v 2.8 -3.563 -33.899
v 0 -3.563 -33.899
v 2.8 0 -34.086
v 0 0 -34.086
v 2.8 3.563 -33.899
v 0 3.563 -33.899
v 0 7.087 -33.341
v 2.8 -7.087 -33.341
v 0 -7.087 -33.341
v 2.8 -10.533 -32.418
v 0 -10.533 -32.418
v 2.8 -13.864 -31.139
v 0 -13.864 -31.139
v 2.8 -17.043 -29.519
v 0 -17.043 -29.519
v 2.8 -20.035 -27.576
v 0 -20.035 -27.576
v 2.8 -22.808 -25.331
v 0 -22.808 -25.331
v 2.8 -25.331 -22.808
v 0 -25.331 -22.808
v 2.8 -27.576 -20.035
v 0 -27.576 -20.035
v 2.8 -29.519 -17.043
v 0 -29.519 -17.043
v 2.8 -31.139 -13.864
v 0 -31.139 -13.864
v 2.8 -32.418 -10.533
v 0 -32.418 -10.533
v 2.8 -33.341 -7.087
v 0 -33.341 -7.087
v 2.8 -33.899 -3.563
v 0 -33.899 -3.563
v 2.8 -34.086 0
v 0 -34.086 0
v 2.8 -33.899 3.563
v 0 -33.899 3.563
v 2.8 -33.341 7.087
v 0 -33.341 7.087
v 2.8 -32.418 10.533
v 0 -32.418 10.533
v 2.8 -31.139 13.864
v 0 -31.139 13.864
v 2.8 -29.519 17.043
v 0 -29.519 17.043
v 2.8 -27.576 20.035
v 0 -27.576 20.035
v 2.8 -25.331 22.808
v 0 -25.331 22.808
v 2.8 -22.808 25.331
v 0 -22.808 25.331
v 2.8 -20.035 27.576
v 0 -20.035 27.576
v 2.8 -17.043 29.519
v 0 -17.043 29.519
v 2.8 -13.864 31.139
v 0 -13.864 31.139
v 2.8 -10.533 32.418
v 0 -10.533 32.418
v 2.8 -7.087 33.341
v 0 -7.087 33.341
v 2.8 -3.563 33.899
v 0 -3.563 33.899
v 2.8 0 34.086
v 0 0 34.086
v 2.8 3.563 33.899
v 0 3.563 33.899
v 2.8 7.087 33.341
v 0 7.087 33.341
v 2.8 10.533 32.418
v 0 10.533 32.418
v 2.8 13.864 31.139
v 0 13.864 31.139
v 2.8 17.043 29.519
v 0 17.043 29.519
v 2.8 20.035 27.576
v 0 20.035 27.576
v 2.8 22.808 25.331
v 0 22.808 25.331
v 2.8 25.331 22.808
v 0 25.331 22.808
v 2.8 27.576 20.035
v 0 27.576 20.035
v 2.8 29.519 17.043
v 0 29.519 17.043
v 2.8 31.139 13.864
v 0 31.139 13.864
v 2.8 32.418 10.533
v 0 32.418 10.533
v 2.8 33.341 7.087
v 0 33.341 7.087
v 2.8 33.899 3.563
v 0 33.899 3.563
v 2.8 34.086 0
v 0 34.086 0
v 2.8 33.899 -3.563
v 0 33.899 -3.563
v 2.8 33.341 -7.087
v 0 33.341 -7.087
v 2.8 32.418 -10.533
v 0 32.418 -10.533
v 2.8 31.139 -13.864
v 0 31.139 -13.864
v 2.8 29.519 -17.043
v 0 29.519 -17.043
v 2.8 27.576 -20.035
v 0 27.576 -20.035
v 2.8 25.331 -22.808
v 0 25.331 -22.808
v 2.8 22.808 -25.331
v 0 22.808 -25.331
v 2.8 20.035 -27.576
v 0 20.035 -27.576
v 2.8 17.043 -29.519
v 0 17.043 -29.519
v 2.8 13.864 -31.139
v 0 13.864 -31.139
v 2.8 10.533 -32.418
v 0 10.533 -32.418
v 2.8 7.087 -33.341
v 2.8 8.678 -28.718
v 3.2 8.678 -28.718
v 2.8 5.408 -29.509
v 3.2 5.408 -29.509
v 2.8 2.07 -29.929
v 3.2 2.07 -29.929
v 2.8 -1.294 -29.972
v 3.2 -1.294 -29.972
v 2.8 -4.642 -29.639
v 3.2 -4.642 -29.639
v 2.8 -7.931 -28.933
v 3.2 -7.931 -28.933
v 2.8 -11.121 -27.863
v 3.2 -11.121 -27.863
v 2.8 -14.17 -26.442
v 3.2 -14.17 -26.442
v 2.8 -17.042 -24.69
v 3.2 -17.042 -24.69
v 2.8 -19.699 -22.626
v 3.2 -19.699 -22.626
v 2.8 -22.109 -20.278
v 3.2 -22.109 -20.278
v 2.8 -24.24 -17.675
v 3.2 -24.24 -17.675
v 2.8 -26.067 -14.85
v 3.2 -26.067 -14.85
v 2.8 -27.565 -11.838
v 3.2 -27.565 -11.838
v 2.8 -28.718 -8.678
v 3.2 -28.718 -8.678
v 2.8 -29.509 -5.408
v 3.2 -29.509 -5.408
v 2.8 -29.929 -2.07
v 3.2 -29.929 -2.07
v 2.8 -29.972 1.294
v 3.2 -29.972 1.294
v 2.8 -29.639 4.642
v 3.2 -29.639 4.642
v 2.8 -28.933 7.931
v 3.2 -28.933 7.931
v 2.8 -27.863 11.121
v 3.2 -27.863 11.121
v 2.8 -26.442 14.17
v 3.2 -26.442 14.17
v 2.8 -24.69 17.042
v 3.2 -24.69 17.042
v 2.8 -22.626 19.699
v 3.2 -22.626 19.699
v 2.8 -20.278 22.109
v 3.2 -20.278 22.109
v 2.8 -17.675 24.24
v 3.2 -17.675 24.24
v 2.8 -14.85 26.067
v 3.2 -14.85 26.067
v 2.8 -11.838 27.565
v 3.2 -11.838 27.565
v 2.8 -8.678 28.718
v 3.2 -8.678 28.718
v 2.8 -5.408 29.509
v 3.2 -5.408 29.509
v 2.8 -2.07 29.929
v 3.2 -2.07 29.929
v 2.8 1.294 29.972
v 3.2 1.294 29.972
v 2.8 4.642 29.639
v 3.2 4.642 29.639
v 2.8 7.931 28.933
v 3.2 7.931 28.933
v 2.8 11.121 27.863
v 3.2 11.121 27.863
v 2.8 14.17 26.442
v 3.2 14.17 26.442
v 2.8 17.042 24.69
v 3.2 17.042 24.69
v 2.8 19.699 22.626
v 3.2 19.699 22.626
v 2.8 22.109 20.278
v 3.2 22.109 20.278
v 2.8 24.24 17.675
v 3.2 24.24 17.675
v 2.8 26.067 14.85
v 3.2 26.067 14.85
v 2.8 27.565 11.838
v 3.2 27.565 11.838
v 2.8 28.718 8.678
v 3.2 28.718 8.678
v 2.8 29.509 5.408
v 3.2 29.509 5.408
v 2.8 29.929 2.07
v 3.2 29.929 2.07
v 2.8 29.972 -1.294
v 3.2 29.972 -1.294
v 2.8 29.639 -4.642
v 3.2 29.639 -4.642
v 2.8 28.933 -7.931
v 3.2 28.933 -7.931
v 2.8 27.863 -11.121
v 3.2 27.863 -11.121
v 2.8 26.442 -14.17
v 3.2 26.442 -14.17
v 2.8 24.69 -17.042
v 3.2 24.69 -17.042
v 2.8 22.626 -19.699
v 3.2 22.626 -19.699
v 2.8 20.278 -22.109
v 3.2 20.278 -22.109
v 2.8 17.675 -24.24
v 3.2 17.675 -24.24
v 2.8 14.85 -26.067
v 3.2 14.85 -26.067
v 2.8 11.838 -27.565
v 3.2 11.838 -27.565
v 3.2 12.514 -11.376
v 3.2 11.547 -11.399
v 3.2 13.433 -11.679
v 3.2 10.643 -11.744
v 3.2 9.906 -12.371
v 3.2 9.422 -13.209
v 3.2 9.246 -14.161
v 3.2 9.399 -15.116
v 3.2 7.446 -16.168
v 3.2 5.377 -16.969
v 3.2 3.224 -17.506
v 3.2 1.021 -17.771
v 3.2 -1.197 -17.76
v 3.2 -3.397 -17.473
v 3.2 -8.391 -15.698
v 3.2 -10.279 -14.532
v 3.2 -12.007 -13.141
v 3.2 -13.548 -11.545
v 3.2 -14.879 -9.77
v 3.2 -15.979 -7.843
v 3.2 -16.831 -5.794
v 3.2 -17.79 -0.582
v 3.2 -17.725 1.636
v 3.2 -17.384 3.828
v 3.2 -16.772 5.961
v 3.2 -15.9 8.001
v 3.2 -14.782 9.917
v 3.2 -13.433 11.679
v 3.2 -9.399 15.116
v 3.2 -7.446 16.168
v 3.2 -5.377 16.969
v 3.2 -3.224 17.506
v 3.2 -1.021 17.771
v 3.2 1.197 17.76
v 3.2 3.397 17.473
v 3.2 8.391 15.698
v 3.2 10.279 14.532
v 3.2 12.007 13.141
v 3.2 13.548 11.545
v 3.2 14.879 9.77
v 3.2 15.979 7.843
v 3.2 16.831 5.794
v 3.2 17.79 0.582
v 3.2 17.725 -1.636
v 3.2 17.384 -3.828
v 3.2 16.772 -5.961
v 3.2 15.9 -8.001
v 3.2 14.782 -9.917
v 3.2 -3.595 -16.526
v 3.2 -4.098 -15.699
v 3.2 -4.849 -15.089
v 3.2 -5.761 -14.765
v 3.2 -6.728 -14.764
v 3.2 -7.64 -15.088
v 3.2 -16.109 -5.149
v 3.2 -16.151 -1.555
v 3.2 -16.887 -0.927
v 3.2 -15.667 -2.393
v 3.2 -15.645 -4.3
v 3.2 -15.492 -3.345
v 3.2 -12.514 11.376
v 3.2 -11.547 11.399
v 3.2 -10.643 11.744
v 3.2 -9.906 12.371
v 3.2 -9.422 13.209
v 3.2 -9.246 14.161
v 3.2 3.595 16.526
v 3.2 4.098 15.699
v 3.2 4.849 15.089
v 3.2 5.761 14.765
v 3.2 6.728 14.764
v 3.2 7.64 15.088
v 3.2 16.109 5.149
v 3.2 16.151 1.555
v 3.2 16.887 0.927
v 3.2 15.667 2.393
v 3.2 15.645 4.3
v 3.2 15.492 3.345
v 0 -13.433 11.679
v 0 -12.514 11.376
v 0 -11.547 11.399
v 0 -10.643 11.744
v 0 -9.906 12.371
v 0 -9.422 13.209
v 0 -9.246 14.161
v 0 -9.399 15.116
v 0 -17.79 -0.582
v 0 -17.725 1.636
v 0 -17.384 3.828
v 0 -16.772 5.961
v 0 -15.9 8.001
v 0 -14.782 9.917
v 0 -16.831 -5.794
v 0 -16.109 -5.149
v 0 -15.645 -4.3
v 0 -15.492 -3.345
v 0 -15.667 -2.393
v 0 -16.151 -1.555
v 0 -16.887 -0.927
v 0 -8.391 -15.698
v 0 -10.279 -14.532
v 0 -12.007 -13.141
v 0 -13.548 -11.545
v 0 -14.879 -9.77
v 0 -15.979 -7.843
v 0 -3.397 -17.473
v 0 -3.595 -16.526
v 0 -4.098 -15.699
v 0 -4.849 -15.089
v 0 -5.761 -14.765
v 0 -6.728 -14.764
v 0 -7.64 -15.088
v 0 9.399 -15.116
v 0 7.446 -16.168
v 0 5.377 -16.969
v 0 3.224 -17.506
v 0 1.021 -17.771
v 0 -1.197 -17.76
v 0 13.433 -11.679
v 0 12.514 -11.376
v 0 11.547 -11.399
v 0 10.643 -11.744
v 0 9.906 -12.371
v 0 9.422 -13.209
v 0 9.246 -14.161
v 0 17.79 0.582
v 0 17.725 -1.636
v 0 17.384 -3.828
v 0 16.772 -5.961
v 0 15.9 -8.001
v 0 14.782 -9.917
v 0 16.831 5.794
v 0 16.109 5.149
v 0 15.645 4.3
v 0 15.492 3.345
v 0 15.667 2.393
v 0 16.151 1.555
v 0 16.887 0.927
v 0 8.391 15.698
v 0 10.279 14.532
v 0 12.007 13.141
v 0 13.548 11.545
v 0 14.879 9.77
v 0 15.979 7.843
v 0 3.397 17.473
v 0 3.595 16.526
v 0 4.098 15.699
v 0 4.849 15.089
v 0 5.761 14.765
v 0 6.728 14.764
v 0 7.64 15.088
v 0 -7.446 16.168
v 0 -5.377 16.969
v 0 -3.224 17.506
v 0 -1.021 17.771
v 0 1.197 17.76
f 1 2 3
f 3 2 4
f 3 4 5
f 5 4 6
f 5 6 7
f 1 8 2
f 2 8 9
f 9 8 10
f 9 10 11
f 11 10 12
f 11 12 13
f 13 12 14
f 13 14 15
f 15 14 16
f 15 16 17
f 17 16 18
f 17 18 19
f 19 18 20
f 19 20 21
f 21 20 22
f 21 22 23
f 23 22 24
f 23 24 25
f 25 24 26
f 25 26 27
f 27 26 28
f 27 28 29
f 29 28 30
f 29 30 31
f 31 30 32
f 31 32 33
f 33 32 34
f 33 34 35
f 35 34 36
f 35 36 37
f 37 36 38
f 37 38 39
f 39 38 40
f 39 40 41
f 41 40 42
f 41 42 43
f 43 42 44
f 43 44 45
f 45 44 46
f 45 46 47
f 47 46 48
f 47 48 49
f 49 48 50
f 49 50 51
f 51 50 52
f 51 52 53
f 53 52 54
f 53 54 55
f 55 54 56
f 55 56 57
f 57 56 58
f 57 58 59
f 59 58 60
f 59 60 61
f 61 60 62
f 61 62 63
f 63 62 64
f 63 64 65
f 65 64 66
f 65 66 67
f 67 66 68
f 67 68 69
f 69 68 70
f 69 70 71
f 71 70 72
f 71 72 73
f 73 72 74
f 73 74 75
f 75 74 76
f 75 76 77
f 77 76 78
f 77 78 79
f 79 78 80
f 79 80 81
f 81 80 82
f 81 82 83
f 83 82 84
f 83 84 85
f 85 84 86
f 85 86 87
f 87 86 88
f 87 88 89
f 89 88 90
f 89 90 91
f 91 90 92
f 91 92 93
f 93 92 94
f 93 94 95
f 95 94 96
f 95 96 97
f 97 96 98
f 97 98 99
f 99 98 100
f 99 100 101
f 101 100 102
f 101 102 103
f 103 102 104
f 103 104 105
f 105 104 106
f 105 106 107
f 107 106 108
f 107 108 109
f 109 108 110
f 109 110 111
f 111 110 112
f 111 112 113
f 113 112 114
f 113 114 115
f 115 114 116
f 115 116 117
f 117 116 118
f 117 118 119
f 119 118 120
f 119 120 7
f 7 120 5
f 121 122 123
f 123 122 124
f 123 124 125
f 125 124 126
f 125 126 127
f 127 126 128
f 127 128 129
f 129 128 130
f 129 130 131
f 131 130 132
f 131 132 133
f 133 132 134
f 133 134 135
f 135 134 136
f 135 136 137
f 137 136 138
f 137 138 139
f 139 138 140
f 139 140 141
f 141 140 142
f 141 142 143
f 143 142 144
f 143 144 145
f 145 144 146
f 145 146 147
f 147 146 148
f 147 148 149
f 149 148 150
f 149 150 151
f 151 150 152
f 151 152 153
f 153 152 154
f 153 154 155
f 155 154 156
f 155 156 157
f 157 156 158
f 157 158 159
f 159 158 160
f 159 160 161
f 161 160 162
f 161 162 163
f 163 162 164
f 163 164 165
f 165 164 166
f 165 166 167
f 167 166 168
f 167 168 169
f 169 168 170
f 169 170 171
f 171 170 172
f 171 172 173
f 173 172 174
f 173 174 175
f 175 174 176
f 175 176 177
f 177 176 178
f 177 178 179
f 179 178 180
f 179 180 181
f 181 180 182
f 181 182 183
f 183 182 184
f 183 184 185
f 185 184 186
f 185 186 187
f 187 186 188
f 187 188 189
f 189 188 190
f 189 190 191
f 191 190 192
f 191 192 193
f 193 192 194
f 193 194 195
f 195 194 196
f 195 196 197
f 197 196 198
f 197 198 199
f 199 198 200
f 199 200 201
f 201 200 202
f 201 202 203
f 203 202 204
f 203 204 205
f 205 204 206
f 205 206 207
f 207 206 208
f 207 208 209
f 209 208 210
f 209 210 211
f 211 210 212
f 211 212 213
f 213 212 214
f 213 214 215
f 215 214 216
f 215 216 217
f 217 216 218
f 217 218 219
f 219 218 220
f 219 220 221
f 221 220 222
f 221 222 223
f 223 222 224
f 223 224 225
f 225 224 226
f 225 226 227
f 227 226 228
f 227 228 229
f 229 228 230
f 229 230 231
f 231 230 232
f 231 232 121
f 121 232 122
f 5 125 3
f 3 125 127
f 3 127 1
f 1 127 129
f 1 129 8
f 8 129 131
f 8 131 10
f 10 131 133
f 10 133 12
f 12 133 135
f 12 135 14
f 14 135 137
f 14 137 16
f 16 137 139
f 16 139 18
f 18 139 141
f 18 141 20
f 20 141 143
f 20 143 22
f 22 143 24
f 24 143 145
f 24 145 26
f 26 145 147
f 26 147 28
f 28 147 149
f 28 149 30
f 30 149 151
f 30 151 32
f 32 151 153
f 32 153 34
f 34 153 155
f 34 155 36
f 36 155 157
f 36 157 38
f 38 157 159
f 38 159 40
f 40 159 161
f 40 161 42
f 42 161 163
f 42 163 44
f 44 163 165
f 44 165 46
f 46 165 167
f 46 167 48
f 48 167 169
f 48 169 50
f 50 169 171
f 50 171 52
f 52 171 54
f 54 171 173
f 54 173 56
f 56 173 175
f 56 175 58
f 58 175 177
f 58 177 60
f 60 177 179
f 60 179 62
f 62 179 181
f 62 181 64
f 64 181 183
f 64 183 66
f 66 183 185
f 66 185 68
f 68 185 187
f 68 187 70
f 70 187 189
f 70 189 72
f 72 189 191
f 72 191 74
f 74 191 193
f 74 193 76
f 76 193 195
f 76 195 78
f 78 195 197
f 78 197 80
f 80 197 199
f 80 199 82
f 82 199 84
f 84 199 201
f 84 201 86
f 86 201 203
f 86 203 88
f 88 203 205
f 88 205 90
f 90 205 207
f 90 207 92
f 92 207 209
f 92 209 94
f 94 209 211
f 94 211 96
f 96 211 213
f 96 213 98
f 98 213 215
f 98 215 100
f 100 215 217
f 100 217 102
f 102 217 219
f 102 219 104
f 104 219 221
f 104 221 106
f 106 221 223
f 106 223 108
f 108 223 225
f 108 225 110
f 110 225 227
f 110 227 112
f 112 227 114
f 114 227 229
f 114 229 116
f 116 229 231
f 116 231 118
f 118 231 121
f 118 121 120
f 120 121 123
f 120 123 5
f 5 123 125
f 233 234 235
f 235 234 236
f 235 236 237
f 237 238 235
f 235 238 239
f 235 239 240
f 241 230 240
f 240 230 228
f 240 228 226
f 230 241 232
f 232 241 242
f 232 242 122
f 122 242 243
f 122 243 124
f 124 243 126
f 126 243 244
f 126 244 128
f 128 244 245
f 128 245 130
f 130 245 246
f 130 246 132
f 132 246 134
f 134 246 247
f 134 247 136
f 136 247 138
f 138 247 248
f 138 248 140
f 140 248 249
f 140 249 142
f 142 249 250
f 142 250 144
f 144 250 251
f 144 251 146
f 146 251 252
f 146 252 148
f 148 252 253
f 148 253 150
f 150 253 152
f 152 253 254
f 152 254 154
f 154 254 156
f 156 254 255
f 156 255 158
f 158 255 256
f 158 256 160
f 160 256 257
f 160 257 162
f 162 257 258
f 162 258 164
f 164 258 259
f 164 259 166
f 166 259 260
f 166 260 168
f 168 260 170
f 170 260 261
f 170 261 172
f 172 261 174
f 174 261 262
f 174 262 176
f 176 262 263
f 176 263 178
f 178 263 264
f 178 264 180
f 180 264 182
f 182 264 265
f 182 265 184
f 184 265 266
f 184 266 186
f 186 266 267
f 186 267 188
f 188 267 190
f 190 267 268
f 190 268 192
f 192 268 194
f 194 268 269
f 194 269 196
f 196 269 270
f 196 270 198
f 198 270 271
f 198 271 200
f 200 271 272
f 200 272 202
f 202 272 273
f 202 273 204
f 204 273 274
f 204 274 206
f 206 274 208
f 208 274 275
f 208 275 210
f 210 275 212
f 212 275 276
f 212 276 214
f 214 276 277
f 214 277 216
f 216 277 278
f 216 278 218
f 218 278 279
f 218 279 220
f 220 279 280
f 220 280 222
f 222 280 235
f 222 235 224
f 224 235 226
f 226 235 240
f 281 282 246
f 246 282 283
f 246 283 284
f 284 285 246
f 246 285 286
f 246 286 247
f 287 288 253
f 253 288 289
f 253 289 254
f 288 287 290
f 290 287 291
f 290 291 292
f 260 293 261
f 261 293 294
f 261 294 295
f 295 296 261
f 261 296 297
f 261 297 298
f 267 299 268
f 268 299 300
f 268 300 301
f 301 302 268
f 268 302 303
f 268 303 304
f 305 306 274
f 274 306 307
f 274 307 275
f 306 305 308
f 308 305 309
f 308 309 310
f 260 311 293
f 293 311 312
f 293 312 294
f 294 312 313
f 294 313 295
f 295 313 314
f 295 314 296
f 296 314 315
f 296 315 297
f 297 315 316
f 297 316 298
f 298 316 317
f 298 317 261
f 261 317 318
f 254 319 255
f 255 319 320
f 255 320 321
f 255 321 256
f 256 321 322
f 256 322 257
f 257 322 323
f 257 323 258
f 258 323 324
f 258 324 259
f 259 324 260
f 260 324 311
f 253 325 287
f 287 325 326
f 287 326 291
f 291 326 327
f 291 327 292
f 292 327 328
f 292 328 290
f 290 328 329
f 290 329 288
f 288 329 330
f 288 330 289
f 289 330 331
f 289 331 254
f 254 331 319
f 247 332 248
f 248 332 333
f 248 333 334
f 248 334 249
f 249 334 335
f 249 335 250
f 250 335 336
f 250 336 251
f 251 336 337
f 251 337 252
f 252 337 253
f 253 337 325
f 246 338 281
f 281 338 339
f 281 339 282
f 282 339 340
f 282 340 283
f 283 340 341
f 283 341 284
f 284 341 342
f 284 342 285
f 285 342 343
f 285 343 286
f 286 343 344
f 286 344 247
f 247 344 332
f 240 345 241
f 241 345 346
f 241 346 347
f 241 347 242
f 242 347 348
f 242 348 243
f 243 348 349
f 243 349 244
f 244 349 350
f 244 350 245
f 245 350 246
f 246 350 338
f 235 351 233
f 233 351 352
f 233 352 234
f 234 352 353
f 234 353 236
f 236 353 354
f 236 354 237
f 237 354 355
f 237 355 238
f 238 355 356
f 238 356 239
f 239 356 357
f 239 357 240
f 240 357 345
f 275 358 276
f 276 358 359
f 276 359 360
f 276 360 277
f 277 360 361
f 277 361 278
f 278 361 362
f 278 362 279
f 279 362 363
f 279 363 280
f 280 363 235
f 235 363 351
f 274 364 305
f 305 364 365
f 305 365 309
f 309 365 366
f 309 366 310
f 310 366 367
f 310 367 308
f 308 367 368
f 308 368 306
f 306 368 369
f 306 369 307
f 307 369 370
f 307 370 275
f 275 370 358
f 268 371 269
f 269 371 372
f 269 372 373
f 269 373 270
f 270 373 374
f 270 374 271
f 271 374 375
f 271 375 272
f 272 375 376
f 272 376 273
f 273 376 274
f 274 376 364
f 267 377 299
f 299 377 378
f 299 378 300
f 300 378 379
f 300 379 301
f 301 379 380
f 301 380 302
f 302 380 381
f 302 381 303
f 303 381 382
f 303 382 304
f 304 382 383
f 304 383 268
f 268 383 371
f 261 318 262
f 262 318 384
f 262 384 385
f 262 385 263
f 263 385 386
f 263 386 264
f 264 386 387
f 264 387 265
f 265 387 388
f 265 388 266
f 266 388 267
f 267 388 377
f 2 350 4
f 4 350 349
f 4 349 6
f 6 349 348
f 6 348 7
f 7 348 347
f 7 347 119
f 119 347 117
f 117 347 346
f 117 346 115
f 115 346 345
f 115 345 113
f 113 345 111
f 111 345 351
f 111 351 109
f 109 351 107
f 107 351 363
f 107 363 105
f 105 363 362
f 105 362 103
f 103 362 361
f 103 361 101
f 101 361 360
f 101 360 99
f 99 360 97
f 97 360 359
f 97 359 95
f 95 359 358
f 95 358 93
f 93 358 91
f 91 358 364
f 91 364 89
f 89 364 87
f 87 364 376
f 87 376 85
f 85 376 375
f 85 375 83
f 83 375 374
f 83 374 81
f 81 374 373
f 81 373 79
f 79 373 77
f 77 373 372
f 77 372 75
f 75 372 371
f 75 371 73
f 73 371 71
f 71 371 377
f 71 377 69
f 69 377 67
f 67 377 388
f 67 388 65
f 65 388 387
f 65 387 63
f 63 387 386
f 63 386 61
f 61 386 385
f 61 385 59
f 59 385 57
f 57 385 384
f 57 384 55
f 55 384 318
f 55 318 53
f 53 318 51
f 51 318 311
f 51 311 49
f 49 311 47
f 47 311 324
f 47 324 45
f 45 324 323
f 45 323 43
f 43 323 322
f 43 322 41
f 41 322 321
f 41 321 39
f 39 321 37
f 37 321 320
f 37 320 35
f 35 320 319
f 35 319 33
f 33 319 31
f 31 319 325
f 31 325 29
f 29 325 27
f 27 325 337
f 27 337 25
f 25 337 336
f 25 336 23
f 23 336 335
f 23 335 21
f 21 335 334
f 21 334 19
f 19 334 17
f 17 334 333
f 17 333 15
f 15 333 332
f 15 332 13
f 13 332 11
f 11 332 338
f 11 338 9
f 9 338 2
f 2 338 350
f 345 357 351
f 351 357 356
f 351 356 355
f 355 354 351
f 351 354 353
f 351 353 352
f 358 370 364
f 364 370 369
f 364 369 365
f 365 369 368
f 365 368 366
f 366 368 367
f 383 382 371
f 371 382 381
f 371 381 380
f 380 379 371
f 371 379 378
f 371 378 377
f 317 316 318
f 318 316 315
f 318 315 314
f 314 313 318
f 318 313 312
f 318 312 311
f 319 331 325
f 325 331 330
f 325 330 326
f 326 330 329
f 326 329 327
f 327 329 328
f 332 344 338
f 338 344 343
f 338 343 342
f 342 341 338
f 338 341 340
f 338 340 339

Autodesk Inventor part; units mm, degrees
ref_plane "YZ Plane" through (0, 0, 0) normal (1, 0, 0) x (0, 1, 0)
ref_plane "XZ Plane" through (0, 0, 0) normal (0, 1, 0) x (-1, 0, 0)
ref_plane "XY Plane" through (0, 0, 0) normal (0, 0, 1) x (1, 0, 0)
sketch "Sketch_1" plane through (0, 0, 0) normal (0, 0, 1) x (1, 0, 0)
  line L0 (7.2, 0) -> (0, 0)
  line L1 (0, 8.5) -> (3.2, 8.5)
  line L2 (3.2, 8.5) -> (3.2, 105.8394)
  arc A0 (3.2, 105.8394) -> (2.2899, 109) centre (-4.7294, 105.2675) ccw
  line L3 (2.2899, 109) -> (0.7899, 109)
  arc A1 (0.7899, 109) -> (0, 105.8394) centre (7.9441, 105.5329) ccw
  line L4 (0, 105.8394) -> (0, 8.5)
  dimension "d16" = 1.5
  dimension "d17" = 3.2
revolve "Revolution1" add sketch "Sketch_1" angle 360 about axis through (7.2, 0, 0) along (1, 0, 0)
sketch "Sketch_2" plane through (3.6, 0, 0) normal (1, 0, 0) x (0, 0, -1)
  circle A0 centre (0, 0) radius 145.3333
  arc A1 (-108.9989, 0.5) -> (-108.9989, -0.5) centre (0, 0) ccw
  line L0 (-108.9989, -0.5) -> (-103.5248, -2.6502)
  arc A2 (-103.0895, -9.8477) -> (-103.5248, -2.6502) centre (-104.9781, -6.35) ccw
  line L1 (-103.0895, -9.8477) -> (-108.2644, -12.642)
  arc A3 (-108.2644, -12.642) -> (-108.1439, -13.6347) centre (0, 0) ccw
  line L2 (-108.1439, -13.6347) -> (-102.4506, -15.1094)
  arc A4 (-101.1508, -22.2019) -> (-102.4506, -15.1094) centre (-103.4473, -18.9574) ccw
  line L3 (-101.1508, -22.2019) -> (-105.9512, -25.5997)
  arc A5 (-105.9512, -25.5997) -> (-105.7119, -26.5706) centre (0, 0) ccw
  line L4 (-105.7119, -26.5706) -> (-99.8824, -27.3483)
  arc A6 (-97.7372, -34.2324) -> (-99.8824, -27.3483) centre (-100.408, -31.2884) ccw
  line L5 (-97.7372, -34.2324) -> (-102.093, -38.184)
  arc A7 (-102.093, -38.184) -> (-101.7384, -39.119) centre (0, 0) ccw
  line L6 (-101.7384, -39.119) -> (-95.8576, -39.1884)
  arc A8 (-92.8983, -45.7638) -> (-95.8576, -39.1884) centre (-95.9045, -43.1631) ccw
  line L7 (-92.8983, -45.7638) -> (-96.7461, -50.2116)
  arc A9 (-96.7461, -50.2116) -> (-96.2813, -51.097) centre (0, 0) ccw
  line L8 (-96.2813, -51.097) -> (-90.4351, -50.457)
  arc A10 (-86.7048, -56.6277) -> (-90.4351, -50.457) centre (-90.0025, -54.4084) ccw
  line L9 (-86.7048, -56.6277) -> (-89.9883, -61.5069)
  arc A11 (-89.9883, -61.5069) -> (-89.4203, -62.3299) centre (0, 0) ccw
  line L10 (-89.4203, -62.3299) -> (-83.6938, -60.9899)
  arc A12 (-79.2469, -66.666) -> (-83.6938, -60.9899) centre (-82.7881, -64.8603) ccw
  line L11 (-79.2469, -66.666) -> (-81.9184, -71.9054)
  arc A13 (-81.9184, -71.9054) -> (-81.2553, -72.6539) centre (0, 0) ccw
  line L12 (-81.2553, -72.6539) -> (-75.732, -70.6334)
  arc A14 (-70.6334, -75.732) -> (-75.732, -70.6334) centre (-74.3664, -74.3664) ccw
  line L13 (-70.6334, -75.732) -> (-72.6539, -81.2553)
  arc A15 (-72.6539, -81.2553) -> (-71.9054, -81.9184) centre (0, 0) ccw
  line L14 (-71.9054, -81.9184) -> (-66.666, -79.2469)
  arc A16 (-60.9899, -83.6938) -> (-66.666, -79.2469) centre (-64.8603, -82.7881) ccw
  line L15 (-60.9899, -83.6938) -> (-62.3299, -89.4203)
  arc A17 (-62.3299, -89.4203) -> (-61.5069, -89.9883) centre (0, 0) ccw
  line L16 (-61.5069, -89.9883) -> (-56.6277, -86.7048)
  arc A18 (-50.457, -90.4351) -> (-56.6277, -86.7048) centre (-54.4084, -90.0025) ccw
  line L17 (-50.457, -90.4351) -> (-51.097, -96.2813)
  arc A19 (-51.097, -96.2813) -> (-50.2116, -96.7461) centre (0, 0) ccw
  line L18 (-50.2116, -96.7461) -> (-45.7638, -92.8983)
  arc A20 (-39.1884, -95.8576) -> (-45.7638, -92.8983) centre (-43.1631, -95.9045) ccw
  line L19 (-39.1884, -95.8576) -> (-39.119, -101.7384)
  arc A21 (-39.119, -101.7384) -> (-38.184, -102.093) centre (0, 0) ccw
  line L20 (-38.184, -102.093) -> (-34.2324, -97.7372)
  arc A22 (-27.3483, -99.8824) -> (-34.2324, -97.7372) centre (-31.2884, -100.408) ccw
  line L21 (-27.3483, -99.8824) -> (-26.5706, -105.7119)
  arc A23 (-26.5706, -105.7119) -> (-25.5997, -105.9512) centre (0, 0) ccw
  line L22 (-25.5997, -105.9512) -> (-22.2019, -101.1508)
  arc A24 (-15.1094, -102.4506) -> (-22.2019, -101.1508) centre (-18.9574, -103.4473) ccw
  line L23 (-15.1094, -102.4506) -> (-13.6347, -108.1439)
  arc A25 (-13.6347, -108.1439) -> (-12.642, -108.2644) centre (0, 0) ccw
  line L24 (-12.642, -108.2644) -> (-9.8477, -103.0895)
  arc A26 (-2.6502, -103.5248) -> (-9.8477, -103.0895) centre (-6.35, -104.9781) ccw
  line L25 (-2.6502, -103.5248) -> (-0.5, -108.9989)
  arc A27 (-0.5, -108.9989) -> (0.5, -108.9989) centre (0, 0) ccw
  line L26 (0.5, -108.9989) -> (2.6502, -103.5248)
  arc A28 (9.8477, -103.0895) -> (2.6502, -103.5248) centre (6.35, -104.9781) ccw
  line L27 (9.8477, -103.0895) -> (12.642, -108.2644)
  arc A29 (12.642, -108.2644) -> (13.6347, -108.1439) centre (0, 0) ccw
  line L28 (13.6347, -108.1439) -> (15.1094, -102.4506)
  arc A30 (22.2019, -101.1508) -> (15.1094, -102.4506) centre (18.9574, -103.4473) ccw
  line L29 (22.2019, -101.1508) -> (25.5997, -105.9512)
  arc A31 (25.5997, -105.9512) -> (26.5706, -105.7119) centre (0, 0) ccw
  line L30 (26.5706, -105.7119) -> (27.3483, -99.8824)
  arc A32 (34.2324, -97.7372) -> (27.3483, -99.8824) centre (31.2884, -100.408) ccw
  line L31 (34.2324, -97.7372) -> (38.184, -102.093)
  arc A33 (38.184, -102.093) -> (39.119, -101.7384) centre (0, 0) ccw
  line L32 (39.119, -101.7384) -> (39.1884, -95.8576)
  arc A34 (45.7638, -92.8983) -> (39.1884, -95.8576) centre (43.1631, -95.9045) ccw
  line L33 (45.7638, -92.8983) -> (50.2116, -96.7461)
  arc A35 (50.2116, -96.7461) -> (51.097, -96.2813) centre (0, 0) ccw
  line L34 (51.097, -96.2813) -> (50.457, -90.4351)
  arc A36 (56.6277, -86.7048) -> (50.457, -90.4351) centre (54.4084, -90.0025) ccw
  line L35 (56.6277, -86.7048) -> (61.5069, -89.9883)
  arc A37 (61.5069, -89.9883) -> (62.3299, -89.4203) centre (0, 0) ccw
  line L36 (62.3299, -89.4203) -> (60.9899, -83.6938)
  arc A38 (66.666, -79.2469) -> (60.9899, -83.6938) centre (64.8603, -82.7881) ccw
  line L37 (66.666, -79.2469) -> (71.9054, -81.9184)
  arc A39 (71.9054, -81.9184) -> (72.6539, -81.2553) centre (0, 0) ccw
  line L38 (72.6539, -81.2553) -> (70.6334, -75.732)
  arc A40 (75.732, -70.6334) -> (70.6334, -75.732) centre (74.3664, -74.3664) ccw
  line L39 (75.732, -70.6334) -> (81.2553, -72.6539)
  arc A41 (81.2553, -72.6539) -> (81.9184, -71.9054) centre (0, 0) ccw
  line L40 (81.9184, -71.9054) -> (79.2469, -66.666)
  arc A42 (83.6938, -60.9899) -> (79.2469, -66.666) centre (82.7881, -64.8603) ccw
  line L41 (83.6938, -60.9899) -> (89.4203, -62.3299)
  arc A43 (89.4203, -62.3299) -> (89.9883, -61.5069) centre (0, 0) ccw
  line L42 (89.9883, -61.5069) -> (86.7048, -56.6277)
  arc A44 (90.4351, -50.457) -> (86.7048, -56.6277) centre (90.0025, -54.4084) ccw
  line L43 (90.4351, -50.457) -> (96.2813, -51.097)
  arc A45 (96.2813, -51.097) -> (96.7461, -50.2116) centre (0, 0) ccw
  line L44 (96.7461, -50.2116) -> (92.8983, -45.7638)
  arc A46 (95.8576, -39.1884) -> (92.8983, -45.7638) centre (95.9045, -43.1631) ccw
  line L45 (95.8576, -39.1884) -> (101.7384, -39.119)
  arc A47 (101.7384, -39.119) -> (102.093, -38.184) centre (0, 0) ccw
  line L46 (102.093, -38.184) -> (97.7372, -34.2324)
  arc A48 (99.8824, -27.3483) -> (97.7372, -34.2324) centre (100.408, -31.2884) ccw
  line L47 (99.8824, -27.3483) -> (105.7119, -26.5706)
  arc A49 (105.7119, -26.5706) -> (105.9512, -25.5997) centre (0, 0) ccw
  line L48 (105.9512, -25.5997) -> (101.1508, -22.2019)
  arc A50 (102.4506, -15.1094) -> (101.1508, -22.2019) centre (103.4473, -18.9574) ccw
  line L49 (102.4506, -15.1094) -> (108.1439, -13.6347)
  arc A51 (108.1439, -13.6347) -> (108.2644, -12.642) centre (0, 0) ccw
  line L50 (108.2644, -12.642) -> (103.0895, -9.8477)
  arc A52 (103.5248, -2.6502) -> (103.0895, -9.8477) centre (104.9781, -6.35) ccw
  line L51 (103.5248, -2.6502) -> (108.9989, -0.5)
  arc A53 (108.9989, -0.5) -> (108.9989, 0.5) centre (0, 0) ccw
  line L52 (108.9989, 0.5) -> (103.5248, 2.6502)
  arc A54 (103.0895, 9.8477) -> (103.5248, 2.6502) centre (104.9781, 6.35) ccw
  line L53 (103.0895, 9.8477) -> (108.2644, 12.642)
  arc A55 (108.2644, 12.642) -> (108.1439, 13.6347) centre (0, 0) ccw
  line L54 (108.1439, 13.6347) -> (102.4506, 15.1094)
  arc A56 (101.1508, 22.2019) -> (102.4506, 15.1094) centre (103.4473, 18.9574) ccw
  line L55 (101.1508, 22.2019) -> (105.9512, 25.5997)
  arc A57 (105.9512, 25.5997) -> (105.7119, 26.5706) centre (0, 0) ccw
  line L56 (105.7119, 26.5706) -> (99.8824, 27.3483)
  arc A58 (97.7372, 34.2324) -> (99.8824, 27.3483) centre (100.408, 31.2884) ccw
  line L57 (97.7372, 34.2324) -> (102.093, 38.184)
  arc A59 (102.093, 38.184) -> (101.7384, 39.119) centre (0, 0) ccw
  line L58 (101.7384, 39.119) -> (95.8576, 39.1884)
  arc A60 (92.8983, 45.7638) -> (95.8576, 39.1884) centre (95.9045, 43.1631) ccw
  line L59 (92.8983, 45.7638) -> (96.7461, 50.2116)
  arc A61 (96.7461, 50.2116) -> (96.2813, 51.097) centre (0, 0) ccw
  line L60 (96.2813, 51.097) -> (90.4351, 50.457)
  arc A62 (86.7048, 56.6277) -> (90.4351, 50.457) centre (90.0025, 54.4084) ccw
  line L61 (86.7048, 56.6277) -> (89.9883, 61.5069)
  arc A63 (89.9883, 61.5069) -> (89.4203, 62.3299) centre (0, 0) ccw
  line L62 (89.4203, 62.3299) -> (83.6938, 60.9899)
  arc A64 (79.2469, 66.666) -> (83.6938, 60.9899) centre (82.7881, 64.8603) ccw
  line L63 (79.2469, 66.666) -> (81.9184, 71.9054)
  arc A65 (81.9184, 71.9054) -> (81.2553, 72.6539) centre (0, 0) ccw
  line L64 (81.2553, 72.6539) -> (75.732, 70.6334)
  arc A66 (70.6334, 75.732) -> (75.732, 70.6334) centre (74.3664, 74.3664) ccw
  line L65 (70.6334, 75.732) -> (72.6539, 81.2553)
  arc A67 (72.6539, 81.2553) -> (71.9054, 81.9184) centre (0, 0) ccw
  line L66 (71.9054, 81.9184) -> (66.666, 79.2469)
  arc A68 (60.9899, 83.6938) -> (66.666, 79.2469) centre (64.8603, 82.7881) ccw
  line L67 (60.9899, 83.6938) -> (62.3299, 89.4203)
  arc A69 (62.3299, 89.4203) -> (61.5069, 89.9883) centre (0, 0) ccw
  line L68 (61.5069, 89.9883) -> (56.6277, 86.7048)
  arc A70 (50.457, 90.4351) -> (56.6277, 86.7048) centre (54.4084, 90.0025) ccw
  line L69 (50.457, 90.4351) -> (51.097, 96.2813)
  arc A71 (51.097, 96.2813) -> (50.2116, 96.7461) centre (0, 0) ccw
  line L70 (50.2116, 96.7461) -> (45.7638, 92.8983)
  arc A72 (39.1884, 95.8576) -> (45.7638, 92.8983) centre (43.1631, 95.9045) ccw
  line L71 (39.1884, 95.8576) -> (39.119, 101.7384)
  arc A73 (39.119, 101.7384) -> (38.184, 102.093) centre (0, 0) ccw
  line L72 (38.184, 102.093) -> (34.2324, 97.7372)
  arc A74 (27.3483, 99.8824) -> (34.2324, 97.7372) centre (31.2884, 100.408) ccw
  line L73 (27.3483, 99.8824) -> (26.5706, 105.7119)
  arc A75 (26.5706, 105.7119) -> (25.5997, 105.9512) centre (0, 0) ccw
  line L74 (25.5997, 105.9512) -> (22.2019, 101.1508)
  arc A76 (15.1094, 102.4506) -> (22.2019, 101.1508) centre (18.9574, 103.4473) ccw
  line L75 (15.1094, 102.4506) -> (13.6347, 108.1439)
  arc A77 (13.6347, 108.1439) -> (12.642, 108.2644) centre (0, 0) ccw
  line L76 (12.642, 108.2644) -> (9.8477, 103.0895)
  arc A78 (2.6502, 103.5248) -> (9.8477, 103.0895) centre (6.35, 104.9781) ccw
  line L77 (2.6502, 103.5248) -> (0.5, 108.9989)
  arc A79 (0.5, 108.9989) -> (-0.5, 108.9989) centre (0, 0) ccw
  line L78 (-0.5, 108.9989) -> (-2.6502, 103.5248)
  arc A80 (-9.8477, 103.0895) -> (-2.6502, 103.5248) centre (-6.35, 104.9781) ccw
  line L79 (-9.8477, 103.0895) -> (-12.642, 108.2644)
  arc A81 (-12.642, 108.2644) -> (-13.6347, 108.1439) centre (0, 0) ccw
  line L80 (-13.6347, 108.1439) -> (-15.1094, 102.4506)
  arc A82 (-22.2019, 101.1508) -> (-15.1094, 102.4506) centre (-18.9574, 103.4473) ccw
  line L81 (-22.2019, 101.1508) -> (-25.5997, 105.9512)
  arc A83 (-25.5997, 105.9512) -> (-26.5706, 105.7119) centre (0, 0) ccw
  line L82 (-26.5706, 105.7119) -> (-27.3483, 99.8824)
  arc A84 (-34.2324, 97.7372) -> (-27.3483, 99.8824) centre (-31.2884, 100.408) ccw
  line L83 (-34.2324, 97.7372) -> (-38.184, 102.093)
  arc A85 (-38.184, 102.093) -> (-39.119, 101.7384) centre (0, 0) ccw
  line L84 (-39.119, 101.7384) -> (-39.1884, 95.8576)
  arc A86 (-45.7638, 92.8983) -> (-39.1884, 95.8576) centre (-43.1631, 95.9045) ccw
  line L85 (-45.7638, 92.8983) -> (-50.2116, 96.7461)
  arc A87 (-50.2116, 96.7461) -> (-51.097, 96.2813) centre (0, 0) ccw
  line L86 (-51.097, 96.2813) -> (-50.457, 90.4351)
  arc A88 (-56.6277, 86.7048) -> (-50.457, 90.4351) centre (-54.4084, 90.0025) ccw
  line L87 (-56.6277, 86.7048) -> (-61.5069, 89.9883)
  arc A89 (-61.5069, 89.9883) -> (-62.3299, 89.4203) centre (0, 0) ccw
  line L88 (-62.3299, 89.4203) -> (-60.9899, 83.6938)
  arc A90 (-66.666, 79.2469) -> (-60.9899, 83.6938) centre (-64.8603, 82.7881) ccw
  line L89 (-66.666, 79.2469) -> (-71.9054, 81.9184)
  arc A91 (-71.9054, 81.9184) -> (-72.6539, 81.2553) centre (0, 0) ccw
  line L90 (-72.6539, 81.2553) -> (-70.6334, 75.732)
  arc A92 (-75.732, 70.6334) -> (-70.6334, 75.732) centre (-74.3664, 74.3664) ccw
  line L91 (-75.732, 70.6334) -> (-81.2553, 72.6539)
  arc A93 (-81.2553, 72.6539) -> (-81.9184, 71.9054) centre (0, 0) ccw
  line L92 (-81.9184, 71.9054) -> (-79.2469, 66.666)
  arc A94 (-83.6938, 60.9899) -> (-79.2469, 66.666) centre (-82.7881, 64.8603) ccw
  line L93 (-83.6938, 60.9899) -> (-89.4203, 62.3299)
  arc A95 (-89.4203, 62.3299) -> (-89.9883, 61.5069) centre (0, 0) ccw
  line L94 (-89.9883, 61.5069) -> (-86.7048, 56.6277)
  arc A96 (-90.4351, 50.457) -> (-86.7048, 56.6277) centre (-90.0025, 54.4084) ccw
  line L95 (-90.4351, 50.457) -> (-96.2813, 51.097)
  arc A97 (-96.2813, 51.097) -> (-96.7461, 50.2116) centre (0, 0) ccw
  line L96 (-96.7461, 50.2116) -> (-92.8983, 45.7638)
  arc A98 (-95.8576, 39.1884) -> (-92.8983, 45.7638) centre (-95.9045, 43.1631) ccw
  line L97 (-95.8576, 39.1884) -> (-101.7384, 39.119)
  arc A99 (-101.7384, 39.119) -> (-102.093, 38.184) centre (0, 0) ccw
  line L98 (-102.093, 38.184) -> (-97.7372, 34.2324)
  arc A100 (-99.8824, 27.3483) -> (-97.7372, 34.2324) centre (-100.408, 31.2884) ccw
  line L99 (-99.8824, 27.3483) -> (-105.7119, 26.5706)
  arc A101 (-105.7119, 26.5706) -> (-105.9512, 25.5997) centre (0, 0) ccw
  line L100 (-105.9512, 25.5997) -> (-101.1508, 22.2019)
  arc A102 (-102.4506, 15.1094) -> (-101.1508, 22.2019) centre (-103.4473, 18.9574) ccw
  line L101 (-102.4506, 15.1094) -> (-108.1439, 13.6347)
  arc A103 (-108.1439, 13.6347) -> (-108.2644, 12.642) centre (0, 0) ccw
  line L102 (-108.2644, 12.642) -> (-103.0895, 9.8477)
  arc A104 (-103.5248, 2.6502) -> (-103.0895, 9.8477) centre (-104.9781, 6.35) ccw
  line L103 (-103.5248, 2.6502) -> (-108.9989, 0.5)
extrude "Extrusion1" cut sketch "Sketch_2" along normal mid plane 7.6
sketch "スケッチ4" plane through (3.2, 18.9574, -103.4473) normal (1, 0, 0) x (0, 0.180255, -0.9836199)
  line L0 (-1.9941, -8.896) -> (0.3565, -8.1331) projected
  arc A0 (0.3565, -8.1331) -> (0.5674, -4.646) centre (-105.17, 0) ccw projected
  line L1 (0.5674, -4.646) -> (-1.674, -3.6053) projected
  arc A1 (-1.674, 3.6053) -> (-1.674, -3.6053) centre (0, 0) ccw projected
  line L2 (-1.674, 3.6053) -> (0.5674, 4.646) projected
  arc A2 (0.5674, 4.646) -> (0.3565, 8.1331) centre (-105.17, 0) ccw projected
  line L3 (0.3565, 8.1331) -> (-1.9941, 8.896) projected
  arc A3 (-2.8632, 16.0541) -> (-1.9941, 8.896) centre (-0.7668, 12.6768) ccw projected
  line L4 (-2.8632, 16.0541) -> (-0.7636, 17.3574) projected
  arc A4 (-0.7636, 17.3574) -> (-1.3933, 20.7936) centre (-105.17, 0) ccw projected
  line L5 (-1.3933, 20.7936) -> (-3.8186, 21.2677) projected
  arc A5 (-5.5442, 28.2688) -> (-3.8186, 21.2677) centre (-3.056, 25.1688) ccw projected
  line L6 (-5.5442, 28.2688) -> (-3.617, 29.8157) projected
  arc A6 (-3.617, 29.8157) -> (-4.6563, 33.1509) centre (-105.17, 0) ccw projected
  line L7 (-4.6563, 33.1509) -> (-7.1211, 33.3292) projected
  arc A7 (-9.678, 40.0712) -> (-7.1211, 33.3292) centre (-6.8343, 37.2938) ccw projected
  line L8 (-9.678, 40.0712) -> (-7.9513, 41.8391) projected
  arc A8 (-7.9513, 41.8391) -> (-9.3851, 45.0247) centre (-105.17, 0) ccw projected
  line L9 (-9.3851, 45.0247) -> (-11.8534, 44.9046) projected
  arc A9 (-15.2043, 51.2893) -> (-11.8534, 44.9046) centre (-12.0466, 48.8749) ccw projected
  line L10 (-15.2043, 51.2893) -> (-13.7033, 53.2525) projected
  arc A10 (-13.7033, 53.2525) -> (-15.5106, 56.2421) centre (-105.17, 0) ccw projected
  line L11 (-15.5106, 56.2421) -> (-17.9464, 55.8253) projected
  arc A11 (-22.0425, 61.7595) -> (-17.9464, 55.8253) centre (-18.6168, 59.7434) ccw projected
  line L12 (-22.0425, 61.7595) -> (-20.7891, 63.8893) projected
  arc A12 (-20.7891, 63.8893) -> (-22.9435, 66.6392) centre (-105.17, 0) ccw projected
  line L13 (-22.9435, 66.6392) -> (-25.3114, 65.9319) projected
  arc A13 (-30.0929, 71.3291) -> (-25.3114, 65.9319) centre (-26.4491, 69.7406) ccw projected
  line L14 (-30.0929, 71.3291) -> (-29.1053, 73.5945) projected
  arc A14 (-29.1053, 73.5945) -> (-31.5755, 76.0647) centre (-105.17, 0) ccw projected
  line L15 (-31.5755, 76.0647) -> (-33.8409, 75.0771) projected
  arc A15 (-39.2381, 79.8586) -> (-33.8409, 75.0771) centre (-35.4294, 78.7209) ccw projected
  line L16 (-39.2381, 79.8586) -> (-38.5308, 82.2265) projected
  arc A16 (-38.5308, 82.2265) -> (-41.2807, 84.3809) centre (-105.17, 0) ccw projected
  line L17 (-41.2807, 84.3809) -> (-43.4105, 83.1275) projected
  arc A17 (-49.3447, 87.2236) -> (-43.4105, 83.1275) centre (-45.4266, 86.5532) ccw projected
  line L18 (-49.3447, 87.2236) -> (-48.9279, 89.6594) projected
  arc A18 (-48.9279, 89.6594) -> (-51.9175, 91.4667) centre (-105.17, 0) ccw projected
  line L19 (-51.9175, 91.4667) -> (-53.8807, 89.9657) projected
  arc A19 (-60.2654, 93.3166) -> (-53.8807, 89.9657) centre (-56.2951, 93.1234) ccw projected
  line L20 (-60.2654, 93.3166) -> (-60.1453, 95.7849) projected
  arc A20 (-60.1453, 95.7849) -> (-63.3309, 97.2187) centre (-105.17, 0) ccw projected
  line L21 (-63.3309, 97.2187) -> (-65.0988, 95.492) projected
  arc A21 (-71.8408, 98.0489) -> (-65.0988, 95.492) centre (-67.8762, 98.3357) ccw projected
  line L22 (-71.8408, 98.0489) -> (-72.0191, 100.5137) projected
  arc A22 (-72.0191, 100.5137) -> (-75.3543, 101.553) centre (-105.17, 0) ccw projected
  line L23 (-75.3543, 101.553) -> (-76.9012, 99.6258) projected
  arc A23 (-83.9023, 101.3514) -> (-76.9012, 99.6258) centre (-80.0012, 102.114) ccw projected
  line L24 (-83.9023, 101.3514) -> (-84.3764, 103.7767) projected
  arc A24 (-84.3764, 103.7767) -> (-87.8126, 104.4064) centre (-105.17, 0) ccw projected
  line L25 (-87.8126, 104.4064) -> (-89.1159, 102.3068) projected
  arc A25 (-96.274, 103.1759) -> (-89.1159, 102.3068) centre (-92.4932, 104.4032) ccw projected
  line L26 (-96.274, 103.1759) -> (-97.0369, 105.5265) projected
  arc A26 (-97.0369, 105.5265) -> (-100.524, 105.7374) centre (-105.17, 0) ccw projected
  line L27 (-100.524, 105.7374) -> (-101.5647, 103.496) projected
  arc A27 (-108.7753, 103.496) -> (-101.5647, 103.496) centre (-105.17, 105.17) ccw projected
  line L28 (-108.7753, 103.496) -> (-109.816, 105.7374) projected
  arc A28 (-109.816, 105.7374) -> (-113.3031, 105.5265) centre (-105.17, 0) ccw projected
  line L29 (-113.3031, 105.5265) -> (-114.066, 103.1759) projected
  arc A29 (-121.2241, 102.3068) -> (-114.066, 103.1759) centre (-117.8468, 104.4032) ccw projected
  line L30 (-121.2241, 102.3068) -> (-122.5274, 104.4064) projected
  arc A30 (-122.5274, 104.4064) -> (-125.9636, 103.7767) centre (-105.17, 0) ccw projected
  line L31 (-125.9636, 103.7767) -> (-126.4377, 101.3514) projected
  arc A31 (-133.4388, 99.6258) -> (-126.4377, 101.3514) centre (-130.3388, 102.114) ccw projected
  line L32 (-133.4388, 99.6258) -> (-134.9857, 101.553) projected
  arc A32 (-134.9857, 101.553) -> (-138.3209, 100.5137) centre (-105.17, 0) ccw projected
  line L33 (-138.3209, 100.5137) -> (-138.4992, 98.0489) projected
  arc A33 (-145.2412, 95.492) -> (-138.4992, 98.0489) centre (-142.4638, 98.3357) ccw projected
  line L34 (-145.2412, 95.492) -> (-147.0091, 97.2187) projected
  arc A34 (-147.0091, 97.2187) -> (-150.1947, 95.7849) centre (-105.17, 0) ccw projected
  line L35 (-150.1947, 95.7849) -> (-150.0746, 93.3166) projected
  arc A35 (-156.4593, 89.9657) -> (-150.0746, 93.3166) centre (-154.0449, 93.1234) ccw projected
  line L36 (-156.4593, 89.9657) -> (-158.4225, 91.4667) projected
  arc A36 (-158.4225, 91.4667) -> (-161.4121, 89.6594) centre (-105.17, 0) ccw projected
  line L37 (-161.4121, 89.6594) -> (-160.9953, 87.2236) projected
  arc A37 (-166.9295, 83.1275) -> (-160.9953, 87.2236) centre (-164.9134, 86.5532) ccw projected
  line L38 (-166.9295, 83.1275) -> (-169.0593, 84.3809) projected
  arc A38 (-169.0593, 84.3809) -> (-171.8092, 82.2265) centre (-105.17, 0) ccw projected
  line L39 (-171.8092, 82.2265) -> (-171.1019, 79.8586) projected
  arc A39 (-176.4991, 75.0771) -> (-171.1019, 79.8586) centre (-174.9106, 78.7209) ccw projected
  line L40 (-176.4991, 75.0771) -> (-178.7645, 76.0647) projected
  arc A40 (-178.7645, 76.0647) -> (-181.2347, 73.5945) centre (-105.17, 0) ccw projected
  line L41 (-181.2347, 73.5945) -> (-180.2471, 71.3291) projected
  arc A41 (-185.0286, 65.9319) -> (-180.2471, 71.3291) centre (-183.8909, 69.7406) ccw projected
  line L42 (-185.0286, 65.9319) -> (-187.3965, 66.6392) projected
  arc A42 (-187.3965, 66.6392) -> (-189.5509, 63.8893) centre (-105.17, 0) ccw projected
  line L43 (-189.5509, 63.8893) -> (-188.2975, 61.7595) projected
  arc A43 (-192.3936, 55.8253) -> (-188.2975, 61.7595) centre (-191.7232, 59.7434) ccw projected
  line L44 (-192.3936, 55.8253) -> (-194.8294, 56.2421) projected
  arc A44 (-194.8294, 56.2421) -> (-196.6367, 53.2525) centre (-105.17, 0) ccw projected
  line L45 (-196.6367, 53.2525) -> (-195.1357, 51.2893) projected
  arc A45 (-198.4866, 44.9046) -> (-195.1357, 51.2893) centre (-198.2934, 48.8749) ccw projected
  line L46 (-198.4866, 44.9046) -> (-200.9549, 45.0247) projected
  arc A46 (-200.9549, 45.0247) -> (-202.3887, 41.8391) centre (-105.17, 0) ccw projected
  line L47 (-202.3887, 41.8391) -> (-200.662, 40.0712) projected
  arc A47 (-203.2189, 33.3292) -> (-200.662, 40.0712) centre (-203.5057, 37.2938) ccw projected
  line L48 (-203.2189, 33.3292) -> (-205.6837, 33.1509) projected
  arc A48 (-205.6837, 33.1509) -> (-206.723, 29.8157) centre (-105.17, 0) ccw projected
  line L49 (-206.723, 29.8157) -> (-204.7958, 28.2688) projected
  arc A49 (-206.5214, 21.2677) -> (-204.7958, 28.2688) centre (-207.284, 25.1688) ccw projected
  line L50 (-206.5214, 21.2677) -> (-208.9467, 20.7936) projected
  arc A50 (-208.9467, 20.7936) -> (-209.5764, 17.3574) centre (-105.17, 0) ccw projected
  line L51 (-209.5764, 17.3574) -> (-207.4768, 16.0541) projected
  arc A51 (-208.3459, 8.896) -> (-207.4768, 16.0541) centre (-209.5732, 12.6768) ccw projected
  line L52 (-208.3459, 8.896) -> (-210.6965, 8.1331) projected
  arc A52 (-210.6965, 8.1331) -> (-210.9074, 4.646) centre (-105.17, 0) ccw projected
  line L53 (-210.9074, 4.646) -> (-208.666, 3.6053) projected
  arc A53 (-208.666, -3.6053) -> (-208.666, 3.6053) centre (-210.34, 0) ccw projected
  line L54 (-208.666, -3.6053) -> (-210.9074, -4.646) projected
  arc A54 (-210.9074, -4.646) -> (-210.6965, -8.1331) centre (-105.17, 0) ccw projected
  line L55 (-210.6965, -8.1331) -> (-208.3459, -8.896) projected
  arc A55 (-207.4768, -16.0541) -> (-208.3459, -8.896) centre (-209.5732, -12.6768) ccw projected
  line L56 (-207.4768, -16.0541) -> (-209.5764, -17.3574) projected
  arc A56 (-209.5764, -17.3574) -> (-208.9467, -20.7936) centre (-105.17, 0) ccw projected
  line L57 (-208.9467, -20.7936) -> (-206.5214, -21.2677) projected
  arc A57 (-204.7958, -28.2688) -> (-206.5214, -21.2677) centre (-207.284, -25.1688) ccw projected
  line L58 (-204.7958, -28.2688) -> (-206.723, -29.8157) projected
  arc A58 (-206.723, -29.8157) -> (-205.6837, -33.1509) centre (-105.17, 0) ccw projected
  line L59 (-205.6837, -33.1509) -> (-203.2189, -33.3292) projected
  arc A59 (-200.662, -40.0712) -> (-203.2189, -33.3292) centre (-203.5057, -37.2938) ccw projected
  line L60 (-200.662, -40.0712) -> (-202.3887, -41.8391) projected
  arc A60 (-202.3887, -41.8391) -> (-200.9549, -45.0247) centre (-105.17, 0) ccw projected
  line L61 (-200.9549, -45.0247) -> (-198.4866, -44.9046) projected
  arc A61 (-195.1357, -51.2893) -> (-198.4866, -44.9046) centre (-198.2934, -48.8749) ccw projected
  line L62 (-195.1357, -51.2893) -> (-196.6367, -53.2525) projected
  arc A62 (-196.6367, -53.2525) -> (-194.8294, -56.2421) centre (-105.17, 0) ccw projected
  line L63 (-194.8294, -56.2421) -> (-192.3936, -55.8253) projected
  arc A63 (-188.2975, -61.7595) -> (-192.3936, -55.8253) centre (-191.7232, -59.7434) ccw projected
  line L64 (-188.2975, -61.7595) -> (-189.5509, -63.8893) projected
  arc A64 (-189.5509, -63.8893) -> (-187.3965, -66.6392) centre (-105.17, 0) ccw projected
  line L65 (-187.3965, -66.6392) -> (-185.0286, -65.9319) projected
  arc A65 (-180.2471, -71.3291) -> (-185.0286, -65.9319) centre (-183.8909, -69.7406) ccw projected
  line L66 (-180.2471, -71.3291) -> (-181.2347, -73.5945) projected
  arc A66 (-181.2347, -73.5945) -> (-178.7645, -76.0647) centre (-105.17, 0) ccw projected
  line L67 (-178.7645, -76.0647) -> (-176.4991, -75.0771) projected
  arc A67 (-171.1019, -79.8586) -> (-176.4991, -75.0771) centre (-174.9106, -78.7209) ccw projected
  line L68 (-171.1019, -79.8586) -> (-171.8092, -82.2265) projected
  arc A68 (-171.8092, -82.2265) -> (-169.0593, -84.3809) centre (-105.17, 0) ccw projected
  line L69 (-169.0593, -84.3809) -> (-166.9295, -83.1275) projected
  arc A69 (-160.9953, -87.2236) -> (-166.9295, -83.1275) centre (-164.9134, -86.5532) ccw projected
  line L70 (-160.9953, -87.2236) -> (-161.4121, -89.6594) projected
  arc A70 (-161.4121, -89.6594) -> (-158.4225, -91.4667) centre (-105.17, 0) ccw projected
  line L71 (-158.4225, -91.4667) -> (-156.4593, -89.9657) projected
  arc A71 (-150.0746, -93.3166) -> (-156.4593, -89.9657) centre (-154.0449, -93.1234) ccw projected
  line L72 (-150.0746, -93.3166) -> (-150.1947, -95.7849) projected
  arc A72 (-150.1947, -95.7849) -> (-147.0091, -97.2187) centre (-105.17, 0) ccw projected
  line L73 (-147.0091, -97.2187) -> (-145.2412, -95.492) projected
  arc A73 (-138.4992, -98.0489) -> (-145.2412, -95.492) centre (-142.4638, -98.3357) ccw projected
  line L74 (-138.4992, -98.0489) -> (-138.3209, -100.5137) projected
  arc A74 (-138.3209, -100.5137) -> (-134.9857, -101.553) centre (-105.17, 0) ccw projected
  line L75 (-134.9857, -101.553) -> (-133.4388, -99.6258) projected
  arc A75 (-126.4377, -101.3514) -> (-133.4388, -99.6258) centre (-130.3388, -102.114) ccw projected
  line L76 (-126.4377, -101.3514) -> (-125.9636, -103.7767) projected
  arc A76 (-125.9636, -103.7767) -> (-122.5274, -104.4064) centre (-105.17, 0) ccw projected
  line L77 (-122.5274, -104.4064) -> (-121.2241, -102.3068) projected
  arc A77 (-114.066, -103.1759) -> (-121.2241, -102.3068) centre (-117.8468, -104.4032) ccw projected
  line L78 (-114.066, -103.1759) -> (-113.3031, -105.5265) projected
  arc A78 (-113.3031, -105.5265) -> (-109.816, -105.7374) centre (-105.17, 0) ccw projected
  line L79 (-109.816, -105.7374) -> (-108.7753, -103.496) projected
  arc A79 (-101.5647, -103.496) -> (-108.7753, -103.496) centre (-105.17, -105.17) ccw projected
  line L80 (-101.5647, -103.496) -> (-100.524, -105.7374) projected
  arc A80 (-100.524, -105.7374) -> (-97.0369, -105.5265) centre (-105.17, 0) ccw projected
  line L81 (-97.0369, -105.5265) -> (-96.274, -103.1759) projected
  arc A81 (-89.1159, -102.3068) -> (-96.274, -103.1759) centre (-92.4932, -104.4032) ccw projected
  line L82 (-89.1159, -102.3068) -> (-87.8126, -104.4064) projected
  arc A82 (-87.8126, -104.4064) -> (-84.3764, -103.7767) centre (-105.17, 0) ccw projected
  line L83 (-84.3764, -103.7767) -> (-83.9023, -101.3514) projected
  arc A83 (-76.9012, -99.6258) -> (-83.9023, -101.3514) centre (-80.0012, -102.114) ccw projected
  line L84 (-76.9012, -99.6258) -> (-75.3543, -101.553) projected
  arc A84 (-75.3543, -101.553) -> (-72.0191, -100.5137) centre (-105.17, 0) ccw projected
  line L85 (-72.0191, -100.5137) -> (-71.8408, -98.0489) projected
  arc A85 (-65.0988, -95.492) -> (-71.8408, -98.0489) centre (-67.8762, -98.3357) ccw projected
  line L86 (-65.0988, -95.492) -> (-63.3309, -97.2187) projected
  arc A86 (-63.3309, -97.2187) -> (-60.1453, -95.7849) centre (-105.17, 0) ccw projected
  line L87 (-60.1453, -95.7849) -> (-60.2654, -93.3166) projected
  arc A87 (-53.8807, -89.9657) -> (-60.2654, -93.3166) centre (-56.2951, -93.1234) ccw projected
  line L88 (-53.8807, -89.9657) -> (-51.9175, -91.4667) projected
  arc A88 (-51.9175, -91.4667) -> (-48.9279, -89.6594) centre (-105.17, 0) ccw projected
  line L89 (-48.9279, -89.6594) -> (-49.3447, -87.2236) projected
  arc A89 (-43.4105, -83.1275) -> (-49.3447, -87.2236) centre (-45.4266, -86.5532) ccw projected
  line L90 (-43.4105, -83.1275) -> (-41.2807, -84.3809) projected
  arc A90 (-41.2807, -84.3809) -> (-38.5308, -82.2265) centre (-105.17, 0) ccw projected
  line L91 (-38.5308, -82.2265) -> (-39.2381, -79.8586) projected
  arc A91 (-33.8409, -75.0771) -> (-39.2381, -79.8586) centre (-35.4294, -78.7209) ccw projected
  line L92 (-33.8409, -75.0771) -> (-31.5755, -76.0647) projected
  arc A92 (-31.5755, -76.0647) -> (-29.1053, -73.5945) centre (-105.17, 0) ccw projected
  line L93 (-29.1053, -73.5945) -> (-30.0929, -71.3291) projected
  arc A93 (-25.3114, -65.9319) -> (-30.0929, -71.3291) centre (-26.4491, -69.7406) ccw projected
  line L94 (-25.3114, -65.9319) -> (-22.9435, -66.6392) projected
  arc A94 (-22.9435, -66.6392) -> (-20.7891, -63.8893) centre (-105.17, 0) ccw projected
  line L95 (-20.7891, -63.8893) -> (-22.0425, -61.7595) projected
  arc A95 (-17.9464, -55.8253) -> (-22.0425, -61.7595) centre (-18.6168, -59.7434) ccw projected
  line L96 (-17.9464, -55.8253) -> (-15.5106, -56.2421) projected
  arc A96 (-15.5106, -56.2421) -> (-13.7033, -53.2525) centre (-105.17, 0) ccw projected
  line L97 (-13.7033, -53.2525) -> (-15.2043, -51.2893) projected
  arc A97 (-11.8534, -44.9046) -> (-15.2043, -51.2893) centre (-12.0466, -48.8749) ccw projected
  line L98 (-11.8534, -44.9046) -> (-9.3851, -45.0247) projected
  arc A98 (-9.3851, -45.0247) -> (-7.9513, -41.8391) centre (-105.17, 0) ccw projected
  line L99 (-7.9513, -41.8391) -> (-9.678, -40.0712) projected
  arc A99 (-7.1211, -33.3292) -> (-9.678, -40.0712) centre (-6.8343, -37.2938) ccw projected
  line L100 (-7.1211, -33.3292) -> (-4.6563, -33.1509) projected
  arc A100 (-4.6563, -33.1509) -> (-3.617, -29.8157) centre (-105.17, 0) ccw projected
  line L101 (-3.617, -29.8157) -> (-5.5442, -28.2688) projected
  arc A101 (-3.8186, -21.2677) -> (-5.5442, -28.2688) centre (-3.056, -25.1688) ccw projected
  line L102 (-3.8186, -21.2677) -> (-1.3933, -20.7936) projected
  arc A102 (-1.3933, -20.7936) -> (-0.7636, -17.3574) centre (-105.17, 0) ccw projected
  line L103 (-0.7636, -17.3574) -> (-2.8632, -16.0541) projected
  arc A103 (-1.9941, -8.896) -> (-2.8632, -16.0541) centre (-0.7668, -12.6768) ccw projected
  circle A104 centre (-105.17, 0) radius 8.5 projected
  circle A105 centre (-105.17, 0) radius 8.5 projected
  line L104 (-105.1545, -17.8) -> (-105.1545, -15.8)
  arc A106 (-102.5045, -17.5993) -> (-107.8045, -17.604) centre (-105.1536, -18.6497) ccw
  line L105 (-107.8045, -17.2766) -> (-107.8045, -18.3234) construction
  line L106 (-102.5045, -18.3234) -> (-102.5045, -17.2766) construction
  line L107 (-107.8045, -18.3234) -> (-102.5045, -18.3234) construction
  line L108 (-107.8045, -17.2766) -> (-102.5045, -18.3234) construction
  line L109 (-102.5045, -17.2766) -> (-107.8045, -18.3234) construction
  line L110 (-102.5045, -17.2766) -> (-107.8045, -17.2766) construction
  arc A107 (-121.7442, 6.4913) -> (-119.0982, 11.0835) centre (-121.3294, 9.3106) ccw
  arc A108 (-107.8355, 17.5993) -> (-102.5355, 17.604) centre (-105.1864, 18.6497) ccw
  arc A109 (-91.2613, 11.108) -> (-88.6073, 6.5204) centre (-89.0271, 9.3391) ccw
  arc A110 (-88.5958, -6.4913) -> (-91.2418, -11.0835) centre (-89.0106, -9.3106) ccw
  arc A111 (-119.0787, -11.108) -> (-121.7327, -6.5204) centre (-121.3129, -9.3391) ccw
  circle A112 centre (-105.17, 0) radius 20
  circle A113 centre (-105.17, 0) radius 17.8
  circle A114 centre (-105.17, 0) radius 8.5
  circle A115 centre (-105.17, 0) radius 24.5
  circle A116 centre (-105.17, 0) radius 23
  circle A117 centre (-105.17, 0) radius 24.5
  circle A118 centre (-105.17, 0) radius 22.5
  point P0 (-118.8609, 7.8866)
  point P1 (-105.1855, 15.8)
  point P2 (-91.4946, 7.9134)
  point P3 (-91.4791, -7.8866)
  point P4 (-118.8454, -7.9134)
  point P5 (-91.2418, -11.0835)
  point P6 (-88.5958, -6.4913)
  point P7 (-88.6073, 6.5204)
  point P8 (-91.2613, 11.108)
  point P9 (-102.5355, 17.604)
  point P10 (-107.8355, 17.5993)
  point P11 (-119.0982, 11.0835)
  point P12 (-121.7442, 6.4913)
  point P13 (-121.7327, -6.5204)
  point P14 (-119.0787, -11.108)
  dimension "d20" = 35.6
  dimension "d21" = 2
  dimension "d22" = 5.3
  dimension "d23" = 360
  dimension "d24" = 40
  dimension "d25" = 49
  dimension "d26" = 46
  dimension "d29" = 2
extrude "押し出し2" cut sketch "スケッチ4" against normal through all contours A106 A113 A111 A107 A108 A109 A110
sketch "スケッチ5" plane through (3.2, 18.9574, -103.4473) normal (1, 0, 0) x (0, 0.180255, -0.9836199)
  circle A0 centre (-107.7065, 69.9311) radius 15
  circle A1 centre (-105.17, 0) radius 90
  circle A2 centre (-105.17, 0) radius 30
  dimension "d30" = 30
  dimension "d31" = 180
  dimension "d32" = 60
extrude "押し出し3" cut sketch "スケッチ5" against normal blind 0.4
extrude "押し出し4" cut sketch "スケッチ5" against normal through all contours A0
pattern_circular "円形状パターン1" count 6 over 360 about axis through (3.2, 0, 0) along (-1, 0, 0) of "押し出し4"
sketch "スケッチ6" plane through (2.8, 0, 0) normal (1, 0, 0) x (0, 0, -1)
  circle A0 centre (-15.1004, 68.3284) radius 15 projected
  circle A1 centre (-66.7243, 21.0869) radius 15 projected
  line L0 (-66.7243, 21.0869) -> (-15.1004, 68.3284)
  circle A2 centre (-31.4807, 34.4011) radius 10
  point P0 (0, 0)
  dimension "d40" = 20
extrude "押し出し5" cut sketch "スケッチ6" against normal through all contours A2
pattern_circular "円形状パターン2" count 6 over 360 about axis through (3.2, 0, 0) along (-1, 0, 0) of "押し出し5"
sketch "スケッチ7" plane through (2.8, 0, 0) normal (1, 0, 0) x (0, 0, -1)
  circle A0 centre (0, 0) radius 34.0862
  circle A1 centre (0, 0) radius 115.853
extrude "押し出し6" cut sketch "スケッチ7" along normal mid plane 10
properties part number "KANA40A52D17_6-D25_PCD124.6(H 7 D 0/+0.1 25 N/A)"
